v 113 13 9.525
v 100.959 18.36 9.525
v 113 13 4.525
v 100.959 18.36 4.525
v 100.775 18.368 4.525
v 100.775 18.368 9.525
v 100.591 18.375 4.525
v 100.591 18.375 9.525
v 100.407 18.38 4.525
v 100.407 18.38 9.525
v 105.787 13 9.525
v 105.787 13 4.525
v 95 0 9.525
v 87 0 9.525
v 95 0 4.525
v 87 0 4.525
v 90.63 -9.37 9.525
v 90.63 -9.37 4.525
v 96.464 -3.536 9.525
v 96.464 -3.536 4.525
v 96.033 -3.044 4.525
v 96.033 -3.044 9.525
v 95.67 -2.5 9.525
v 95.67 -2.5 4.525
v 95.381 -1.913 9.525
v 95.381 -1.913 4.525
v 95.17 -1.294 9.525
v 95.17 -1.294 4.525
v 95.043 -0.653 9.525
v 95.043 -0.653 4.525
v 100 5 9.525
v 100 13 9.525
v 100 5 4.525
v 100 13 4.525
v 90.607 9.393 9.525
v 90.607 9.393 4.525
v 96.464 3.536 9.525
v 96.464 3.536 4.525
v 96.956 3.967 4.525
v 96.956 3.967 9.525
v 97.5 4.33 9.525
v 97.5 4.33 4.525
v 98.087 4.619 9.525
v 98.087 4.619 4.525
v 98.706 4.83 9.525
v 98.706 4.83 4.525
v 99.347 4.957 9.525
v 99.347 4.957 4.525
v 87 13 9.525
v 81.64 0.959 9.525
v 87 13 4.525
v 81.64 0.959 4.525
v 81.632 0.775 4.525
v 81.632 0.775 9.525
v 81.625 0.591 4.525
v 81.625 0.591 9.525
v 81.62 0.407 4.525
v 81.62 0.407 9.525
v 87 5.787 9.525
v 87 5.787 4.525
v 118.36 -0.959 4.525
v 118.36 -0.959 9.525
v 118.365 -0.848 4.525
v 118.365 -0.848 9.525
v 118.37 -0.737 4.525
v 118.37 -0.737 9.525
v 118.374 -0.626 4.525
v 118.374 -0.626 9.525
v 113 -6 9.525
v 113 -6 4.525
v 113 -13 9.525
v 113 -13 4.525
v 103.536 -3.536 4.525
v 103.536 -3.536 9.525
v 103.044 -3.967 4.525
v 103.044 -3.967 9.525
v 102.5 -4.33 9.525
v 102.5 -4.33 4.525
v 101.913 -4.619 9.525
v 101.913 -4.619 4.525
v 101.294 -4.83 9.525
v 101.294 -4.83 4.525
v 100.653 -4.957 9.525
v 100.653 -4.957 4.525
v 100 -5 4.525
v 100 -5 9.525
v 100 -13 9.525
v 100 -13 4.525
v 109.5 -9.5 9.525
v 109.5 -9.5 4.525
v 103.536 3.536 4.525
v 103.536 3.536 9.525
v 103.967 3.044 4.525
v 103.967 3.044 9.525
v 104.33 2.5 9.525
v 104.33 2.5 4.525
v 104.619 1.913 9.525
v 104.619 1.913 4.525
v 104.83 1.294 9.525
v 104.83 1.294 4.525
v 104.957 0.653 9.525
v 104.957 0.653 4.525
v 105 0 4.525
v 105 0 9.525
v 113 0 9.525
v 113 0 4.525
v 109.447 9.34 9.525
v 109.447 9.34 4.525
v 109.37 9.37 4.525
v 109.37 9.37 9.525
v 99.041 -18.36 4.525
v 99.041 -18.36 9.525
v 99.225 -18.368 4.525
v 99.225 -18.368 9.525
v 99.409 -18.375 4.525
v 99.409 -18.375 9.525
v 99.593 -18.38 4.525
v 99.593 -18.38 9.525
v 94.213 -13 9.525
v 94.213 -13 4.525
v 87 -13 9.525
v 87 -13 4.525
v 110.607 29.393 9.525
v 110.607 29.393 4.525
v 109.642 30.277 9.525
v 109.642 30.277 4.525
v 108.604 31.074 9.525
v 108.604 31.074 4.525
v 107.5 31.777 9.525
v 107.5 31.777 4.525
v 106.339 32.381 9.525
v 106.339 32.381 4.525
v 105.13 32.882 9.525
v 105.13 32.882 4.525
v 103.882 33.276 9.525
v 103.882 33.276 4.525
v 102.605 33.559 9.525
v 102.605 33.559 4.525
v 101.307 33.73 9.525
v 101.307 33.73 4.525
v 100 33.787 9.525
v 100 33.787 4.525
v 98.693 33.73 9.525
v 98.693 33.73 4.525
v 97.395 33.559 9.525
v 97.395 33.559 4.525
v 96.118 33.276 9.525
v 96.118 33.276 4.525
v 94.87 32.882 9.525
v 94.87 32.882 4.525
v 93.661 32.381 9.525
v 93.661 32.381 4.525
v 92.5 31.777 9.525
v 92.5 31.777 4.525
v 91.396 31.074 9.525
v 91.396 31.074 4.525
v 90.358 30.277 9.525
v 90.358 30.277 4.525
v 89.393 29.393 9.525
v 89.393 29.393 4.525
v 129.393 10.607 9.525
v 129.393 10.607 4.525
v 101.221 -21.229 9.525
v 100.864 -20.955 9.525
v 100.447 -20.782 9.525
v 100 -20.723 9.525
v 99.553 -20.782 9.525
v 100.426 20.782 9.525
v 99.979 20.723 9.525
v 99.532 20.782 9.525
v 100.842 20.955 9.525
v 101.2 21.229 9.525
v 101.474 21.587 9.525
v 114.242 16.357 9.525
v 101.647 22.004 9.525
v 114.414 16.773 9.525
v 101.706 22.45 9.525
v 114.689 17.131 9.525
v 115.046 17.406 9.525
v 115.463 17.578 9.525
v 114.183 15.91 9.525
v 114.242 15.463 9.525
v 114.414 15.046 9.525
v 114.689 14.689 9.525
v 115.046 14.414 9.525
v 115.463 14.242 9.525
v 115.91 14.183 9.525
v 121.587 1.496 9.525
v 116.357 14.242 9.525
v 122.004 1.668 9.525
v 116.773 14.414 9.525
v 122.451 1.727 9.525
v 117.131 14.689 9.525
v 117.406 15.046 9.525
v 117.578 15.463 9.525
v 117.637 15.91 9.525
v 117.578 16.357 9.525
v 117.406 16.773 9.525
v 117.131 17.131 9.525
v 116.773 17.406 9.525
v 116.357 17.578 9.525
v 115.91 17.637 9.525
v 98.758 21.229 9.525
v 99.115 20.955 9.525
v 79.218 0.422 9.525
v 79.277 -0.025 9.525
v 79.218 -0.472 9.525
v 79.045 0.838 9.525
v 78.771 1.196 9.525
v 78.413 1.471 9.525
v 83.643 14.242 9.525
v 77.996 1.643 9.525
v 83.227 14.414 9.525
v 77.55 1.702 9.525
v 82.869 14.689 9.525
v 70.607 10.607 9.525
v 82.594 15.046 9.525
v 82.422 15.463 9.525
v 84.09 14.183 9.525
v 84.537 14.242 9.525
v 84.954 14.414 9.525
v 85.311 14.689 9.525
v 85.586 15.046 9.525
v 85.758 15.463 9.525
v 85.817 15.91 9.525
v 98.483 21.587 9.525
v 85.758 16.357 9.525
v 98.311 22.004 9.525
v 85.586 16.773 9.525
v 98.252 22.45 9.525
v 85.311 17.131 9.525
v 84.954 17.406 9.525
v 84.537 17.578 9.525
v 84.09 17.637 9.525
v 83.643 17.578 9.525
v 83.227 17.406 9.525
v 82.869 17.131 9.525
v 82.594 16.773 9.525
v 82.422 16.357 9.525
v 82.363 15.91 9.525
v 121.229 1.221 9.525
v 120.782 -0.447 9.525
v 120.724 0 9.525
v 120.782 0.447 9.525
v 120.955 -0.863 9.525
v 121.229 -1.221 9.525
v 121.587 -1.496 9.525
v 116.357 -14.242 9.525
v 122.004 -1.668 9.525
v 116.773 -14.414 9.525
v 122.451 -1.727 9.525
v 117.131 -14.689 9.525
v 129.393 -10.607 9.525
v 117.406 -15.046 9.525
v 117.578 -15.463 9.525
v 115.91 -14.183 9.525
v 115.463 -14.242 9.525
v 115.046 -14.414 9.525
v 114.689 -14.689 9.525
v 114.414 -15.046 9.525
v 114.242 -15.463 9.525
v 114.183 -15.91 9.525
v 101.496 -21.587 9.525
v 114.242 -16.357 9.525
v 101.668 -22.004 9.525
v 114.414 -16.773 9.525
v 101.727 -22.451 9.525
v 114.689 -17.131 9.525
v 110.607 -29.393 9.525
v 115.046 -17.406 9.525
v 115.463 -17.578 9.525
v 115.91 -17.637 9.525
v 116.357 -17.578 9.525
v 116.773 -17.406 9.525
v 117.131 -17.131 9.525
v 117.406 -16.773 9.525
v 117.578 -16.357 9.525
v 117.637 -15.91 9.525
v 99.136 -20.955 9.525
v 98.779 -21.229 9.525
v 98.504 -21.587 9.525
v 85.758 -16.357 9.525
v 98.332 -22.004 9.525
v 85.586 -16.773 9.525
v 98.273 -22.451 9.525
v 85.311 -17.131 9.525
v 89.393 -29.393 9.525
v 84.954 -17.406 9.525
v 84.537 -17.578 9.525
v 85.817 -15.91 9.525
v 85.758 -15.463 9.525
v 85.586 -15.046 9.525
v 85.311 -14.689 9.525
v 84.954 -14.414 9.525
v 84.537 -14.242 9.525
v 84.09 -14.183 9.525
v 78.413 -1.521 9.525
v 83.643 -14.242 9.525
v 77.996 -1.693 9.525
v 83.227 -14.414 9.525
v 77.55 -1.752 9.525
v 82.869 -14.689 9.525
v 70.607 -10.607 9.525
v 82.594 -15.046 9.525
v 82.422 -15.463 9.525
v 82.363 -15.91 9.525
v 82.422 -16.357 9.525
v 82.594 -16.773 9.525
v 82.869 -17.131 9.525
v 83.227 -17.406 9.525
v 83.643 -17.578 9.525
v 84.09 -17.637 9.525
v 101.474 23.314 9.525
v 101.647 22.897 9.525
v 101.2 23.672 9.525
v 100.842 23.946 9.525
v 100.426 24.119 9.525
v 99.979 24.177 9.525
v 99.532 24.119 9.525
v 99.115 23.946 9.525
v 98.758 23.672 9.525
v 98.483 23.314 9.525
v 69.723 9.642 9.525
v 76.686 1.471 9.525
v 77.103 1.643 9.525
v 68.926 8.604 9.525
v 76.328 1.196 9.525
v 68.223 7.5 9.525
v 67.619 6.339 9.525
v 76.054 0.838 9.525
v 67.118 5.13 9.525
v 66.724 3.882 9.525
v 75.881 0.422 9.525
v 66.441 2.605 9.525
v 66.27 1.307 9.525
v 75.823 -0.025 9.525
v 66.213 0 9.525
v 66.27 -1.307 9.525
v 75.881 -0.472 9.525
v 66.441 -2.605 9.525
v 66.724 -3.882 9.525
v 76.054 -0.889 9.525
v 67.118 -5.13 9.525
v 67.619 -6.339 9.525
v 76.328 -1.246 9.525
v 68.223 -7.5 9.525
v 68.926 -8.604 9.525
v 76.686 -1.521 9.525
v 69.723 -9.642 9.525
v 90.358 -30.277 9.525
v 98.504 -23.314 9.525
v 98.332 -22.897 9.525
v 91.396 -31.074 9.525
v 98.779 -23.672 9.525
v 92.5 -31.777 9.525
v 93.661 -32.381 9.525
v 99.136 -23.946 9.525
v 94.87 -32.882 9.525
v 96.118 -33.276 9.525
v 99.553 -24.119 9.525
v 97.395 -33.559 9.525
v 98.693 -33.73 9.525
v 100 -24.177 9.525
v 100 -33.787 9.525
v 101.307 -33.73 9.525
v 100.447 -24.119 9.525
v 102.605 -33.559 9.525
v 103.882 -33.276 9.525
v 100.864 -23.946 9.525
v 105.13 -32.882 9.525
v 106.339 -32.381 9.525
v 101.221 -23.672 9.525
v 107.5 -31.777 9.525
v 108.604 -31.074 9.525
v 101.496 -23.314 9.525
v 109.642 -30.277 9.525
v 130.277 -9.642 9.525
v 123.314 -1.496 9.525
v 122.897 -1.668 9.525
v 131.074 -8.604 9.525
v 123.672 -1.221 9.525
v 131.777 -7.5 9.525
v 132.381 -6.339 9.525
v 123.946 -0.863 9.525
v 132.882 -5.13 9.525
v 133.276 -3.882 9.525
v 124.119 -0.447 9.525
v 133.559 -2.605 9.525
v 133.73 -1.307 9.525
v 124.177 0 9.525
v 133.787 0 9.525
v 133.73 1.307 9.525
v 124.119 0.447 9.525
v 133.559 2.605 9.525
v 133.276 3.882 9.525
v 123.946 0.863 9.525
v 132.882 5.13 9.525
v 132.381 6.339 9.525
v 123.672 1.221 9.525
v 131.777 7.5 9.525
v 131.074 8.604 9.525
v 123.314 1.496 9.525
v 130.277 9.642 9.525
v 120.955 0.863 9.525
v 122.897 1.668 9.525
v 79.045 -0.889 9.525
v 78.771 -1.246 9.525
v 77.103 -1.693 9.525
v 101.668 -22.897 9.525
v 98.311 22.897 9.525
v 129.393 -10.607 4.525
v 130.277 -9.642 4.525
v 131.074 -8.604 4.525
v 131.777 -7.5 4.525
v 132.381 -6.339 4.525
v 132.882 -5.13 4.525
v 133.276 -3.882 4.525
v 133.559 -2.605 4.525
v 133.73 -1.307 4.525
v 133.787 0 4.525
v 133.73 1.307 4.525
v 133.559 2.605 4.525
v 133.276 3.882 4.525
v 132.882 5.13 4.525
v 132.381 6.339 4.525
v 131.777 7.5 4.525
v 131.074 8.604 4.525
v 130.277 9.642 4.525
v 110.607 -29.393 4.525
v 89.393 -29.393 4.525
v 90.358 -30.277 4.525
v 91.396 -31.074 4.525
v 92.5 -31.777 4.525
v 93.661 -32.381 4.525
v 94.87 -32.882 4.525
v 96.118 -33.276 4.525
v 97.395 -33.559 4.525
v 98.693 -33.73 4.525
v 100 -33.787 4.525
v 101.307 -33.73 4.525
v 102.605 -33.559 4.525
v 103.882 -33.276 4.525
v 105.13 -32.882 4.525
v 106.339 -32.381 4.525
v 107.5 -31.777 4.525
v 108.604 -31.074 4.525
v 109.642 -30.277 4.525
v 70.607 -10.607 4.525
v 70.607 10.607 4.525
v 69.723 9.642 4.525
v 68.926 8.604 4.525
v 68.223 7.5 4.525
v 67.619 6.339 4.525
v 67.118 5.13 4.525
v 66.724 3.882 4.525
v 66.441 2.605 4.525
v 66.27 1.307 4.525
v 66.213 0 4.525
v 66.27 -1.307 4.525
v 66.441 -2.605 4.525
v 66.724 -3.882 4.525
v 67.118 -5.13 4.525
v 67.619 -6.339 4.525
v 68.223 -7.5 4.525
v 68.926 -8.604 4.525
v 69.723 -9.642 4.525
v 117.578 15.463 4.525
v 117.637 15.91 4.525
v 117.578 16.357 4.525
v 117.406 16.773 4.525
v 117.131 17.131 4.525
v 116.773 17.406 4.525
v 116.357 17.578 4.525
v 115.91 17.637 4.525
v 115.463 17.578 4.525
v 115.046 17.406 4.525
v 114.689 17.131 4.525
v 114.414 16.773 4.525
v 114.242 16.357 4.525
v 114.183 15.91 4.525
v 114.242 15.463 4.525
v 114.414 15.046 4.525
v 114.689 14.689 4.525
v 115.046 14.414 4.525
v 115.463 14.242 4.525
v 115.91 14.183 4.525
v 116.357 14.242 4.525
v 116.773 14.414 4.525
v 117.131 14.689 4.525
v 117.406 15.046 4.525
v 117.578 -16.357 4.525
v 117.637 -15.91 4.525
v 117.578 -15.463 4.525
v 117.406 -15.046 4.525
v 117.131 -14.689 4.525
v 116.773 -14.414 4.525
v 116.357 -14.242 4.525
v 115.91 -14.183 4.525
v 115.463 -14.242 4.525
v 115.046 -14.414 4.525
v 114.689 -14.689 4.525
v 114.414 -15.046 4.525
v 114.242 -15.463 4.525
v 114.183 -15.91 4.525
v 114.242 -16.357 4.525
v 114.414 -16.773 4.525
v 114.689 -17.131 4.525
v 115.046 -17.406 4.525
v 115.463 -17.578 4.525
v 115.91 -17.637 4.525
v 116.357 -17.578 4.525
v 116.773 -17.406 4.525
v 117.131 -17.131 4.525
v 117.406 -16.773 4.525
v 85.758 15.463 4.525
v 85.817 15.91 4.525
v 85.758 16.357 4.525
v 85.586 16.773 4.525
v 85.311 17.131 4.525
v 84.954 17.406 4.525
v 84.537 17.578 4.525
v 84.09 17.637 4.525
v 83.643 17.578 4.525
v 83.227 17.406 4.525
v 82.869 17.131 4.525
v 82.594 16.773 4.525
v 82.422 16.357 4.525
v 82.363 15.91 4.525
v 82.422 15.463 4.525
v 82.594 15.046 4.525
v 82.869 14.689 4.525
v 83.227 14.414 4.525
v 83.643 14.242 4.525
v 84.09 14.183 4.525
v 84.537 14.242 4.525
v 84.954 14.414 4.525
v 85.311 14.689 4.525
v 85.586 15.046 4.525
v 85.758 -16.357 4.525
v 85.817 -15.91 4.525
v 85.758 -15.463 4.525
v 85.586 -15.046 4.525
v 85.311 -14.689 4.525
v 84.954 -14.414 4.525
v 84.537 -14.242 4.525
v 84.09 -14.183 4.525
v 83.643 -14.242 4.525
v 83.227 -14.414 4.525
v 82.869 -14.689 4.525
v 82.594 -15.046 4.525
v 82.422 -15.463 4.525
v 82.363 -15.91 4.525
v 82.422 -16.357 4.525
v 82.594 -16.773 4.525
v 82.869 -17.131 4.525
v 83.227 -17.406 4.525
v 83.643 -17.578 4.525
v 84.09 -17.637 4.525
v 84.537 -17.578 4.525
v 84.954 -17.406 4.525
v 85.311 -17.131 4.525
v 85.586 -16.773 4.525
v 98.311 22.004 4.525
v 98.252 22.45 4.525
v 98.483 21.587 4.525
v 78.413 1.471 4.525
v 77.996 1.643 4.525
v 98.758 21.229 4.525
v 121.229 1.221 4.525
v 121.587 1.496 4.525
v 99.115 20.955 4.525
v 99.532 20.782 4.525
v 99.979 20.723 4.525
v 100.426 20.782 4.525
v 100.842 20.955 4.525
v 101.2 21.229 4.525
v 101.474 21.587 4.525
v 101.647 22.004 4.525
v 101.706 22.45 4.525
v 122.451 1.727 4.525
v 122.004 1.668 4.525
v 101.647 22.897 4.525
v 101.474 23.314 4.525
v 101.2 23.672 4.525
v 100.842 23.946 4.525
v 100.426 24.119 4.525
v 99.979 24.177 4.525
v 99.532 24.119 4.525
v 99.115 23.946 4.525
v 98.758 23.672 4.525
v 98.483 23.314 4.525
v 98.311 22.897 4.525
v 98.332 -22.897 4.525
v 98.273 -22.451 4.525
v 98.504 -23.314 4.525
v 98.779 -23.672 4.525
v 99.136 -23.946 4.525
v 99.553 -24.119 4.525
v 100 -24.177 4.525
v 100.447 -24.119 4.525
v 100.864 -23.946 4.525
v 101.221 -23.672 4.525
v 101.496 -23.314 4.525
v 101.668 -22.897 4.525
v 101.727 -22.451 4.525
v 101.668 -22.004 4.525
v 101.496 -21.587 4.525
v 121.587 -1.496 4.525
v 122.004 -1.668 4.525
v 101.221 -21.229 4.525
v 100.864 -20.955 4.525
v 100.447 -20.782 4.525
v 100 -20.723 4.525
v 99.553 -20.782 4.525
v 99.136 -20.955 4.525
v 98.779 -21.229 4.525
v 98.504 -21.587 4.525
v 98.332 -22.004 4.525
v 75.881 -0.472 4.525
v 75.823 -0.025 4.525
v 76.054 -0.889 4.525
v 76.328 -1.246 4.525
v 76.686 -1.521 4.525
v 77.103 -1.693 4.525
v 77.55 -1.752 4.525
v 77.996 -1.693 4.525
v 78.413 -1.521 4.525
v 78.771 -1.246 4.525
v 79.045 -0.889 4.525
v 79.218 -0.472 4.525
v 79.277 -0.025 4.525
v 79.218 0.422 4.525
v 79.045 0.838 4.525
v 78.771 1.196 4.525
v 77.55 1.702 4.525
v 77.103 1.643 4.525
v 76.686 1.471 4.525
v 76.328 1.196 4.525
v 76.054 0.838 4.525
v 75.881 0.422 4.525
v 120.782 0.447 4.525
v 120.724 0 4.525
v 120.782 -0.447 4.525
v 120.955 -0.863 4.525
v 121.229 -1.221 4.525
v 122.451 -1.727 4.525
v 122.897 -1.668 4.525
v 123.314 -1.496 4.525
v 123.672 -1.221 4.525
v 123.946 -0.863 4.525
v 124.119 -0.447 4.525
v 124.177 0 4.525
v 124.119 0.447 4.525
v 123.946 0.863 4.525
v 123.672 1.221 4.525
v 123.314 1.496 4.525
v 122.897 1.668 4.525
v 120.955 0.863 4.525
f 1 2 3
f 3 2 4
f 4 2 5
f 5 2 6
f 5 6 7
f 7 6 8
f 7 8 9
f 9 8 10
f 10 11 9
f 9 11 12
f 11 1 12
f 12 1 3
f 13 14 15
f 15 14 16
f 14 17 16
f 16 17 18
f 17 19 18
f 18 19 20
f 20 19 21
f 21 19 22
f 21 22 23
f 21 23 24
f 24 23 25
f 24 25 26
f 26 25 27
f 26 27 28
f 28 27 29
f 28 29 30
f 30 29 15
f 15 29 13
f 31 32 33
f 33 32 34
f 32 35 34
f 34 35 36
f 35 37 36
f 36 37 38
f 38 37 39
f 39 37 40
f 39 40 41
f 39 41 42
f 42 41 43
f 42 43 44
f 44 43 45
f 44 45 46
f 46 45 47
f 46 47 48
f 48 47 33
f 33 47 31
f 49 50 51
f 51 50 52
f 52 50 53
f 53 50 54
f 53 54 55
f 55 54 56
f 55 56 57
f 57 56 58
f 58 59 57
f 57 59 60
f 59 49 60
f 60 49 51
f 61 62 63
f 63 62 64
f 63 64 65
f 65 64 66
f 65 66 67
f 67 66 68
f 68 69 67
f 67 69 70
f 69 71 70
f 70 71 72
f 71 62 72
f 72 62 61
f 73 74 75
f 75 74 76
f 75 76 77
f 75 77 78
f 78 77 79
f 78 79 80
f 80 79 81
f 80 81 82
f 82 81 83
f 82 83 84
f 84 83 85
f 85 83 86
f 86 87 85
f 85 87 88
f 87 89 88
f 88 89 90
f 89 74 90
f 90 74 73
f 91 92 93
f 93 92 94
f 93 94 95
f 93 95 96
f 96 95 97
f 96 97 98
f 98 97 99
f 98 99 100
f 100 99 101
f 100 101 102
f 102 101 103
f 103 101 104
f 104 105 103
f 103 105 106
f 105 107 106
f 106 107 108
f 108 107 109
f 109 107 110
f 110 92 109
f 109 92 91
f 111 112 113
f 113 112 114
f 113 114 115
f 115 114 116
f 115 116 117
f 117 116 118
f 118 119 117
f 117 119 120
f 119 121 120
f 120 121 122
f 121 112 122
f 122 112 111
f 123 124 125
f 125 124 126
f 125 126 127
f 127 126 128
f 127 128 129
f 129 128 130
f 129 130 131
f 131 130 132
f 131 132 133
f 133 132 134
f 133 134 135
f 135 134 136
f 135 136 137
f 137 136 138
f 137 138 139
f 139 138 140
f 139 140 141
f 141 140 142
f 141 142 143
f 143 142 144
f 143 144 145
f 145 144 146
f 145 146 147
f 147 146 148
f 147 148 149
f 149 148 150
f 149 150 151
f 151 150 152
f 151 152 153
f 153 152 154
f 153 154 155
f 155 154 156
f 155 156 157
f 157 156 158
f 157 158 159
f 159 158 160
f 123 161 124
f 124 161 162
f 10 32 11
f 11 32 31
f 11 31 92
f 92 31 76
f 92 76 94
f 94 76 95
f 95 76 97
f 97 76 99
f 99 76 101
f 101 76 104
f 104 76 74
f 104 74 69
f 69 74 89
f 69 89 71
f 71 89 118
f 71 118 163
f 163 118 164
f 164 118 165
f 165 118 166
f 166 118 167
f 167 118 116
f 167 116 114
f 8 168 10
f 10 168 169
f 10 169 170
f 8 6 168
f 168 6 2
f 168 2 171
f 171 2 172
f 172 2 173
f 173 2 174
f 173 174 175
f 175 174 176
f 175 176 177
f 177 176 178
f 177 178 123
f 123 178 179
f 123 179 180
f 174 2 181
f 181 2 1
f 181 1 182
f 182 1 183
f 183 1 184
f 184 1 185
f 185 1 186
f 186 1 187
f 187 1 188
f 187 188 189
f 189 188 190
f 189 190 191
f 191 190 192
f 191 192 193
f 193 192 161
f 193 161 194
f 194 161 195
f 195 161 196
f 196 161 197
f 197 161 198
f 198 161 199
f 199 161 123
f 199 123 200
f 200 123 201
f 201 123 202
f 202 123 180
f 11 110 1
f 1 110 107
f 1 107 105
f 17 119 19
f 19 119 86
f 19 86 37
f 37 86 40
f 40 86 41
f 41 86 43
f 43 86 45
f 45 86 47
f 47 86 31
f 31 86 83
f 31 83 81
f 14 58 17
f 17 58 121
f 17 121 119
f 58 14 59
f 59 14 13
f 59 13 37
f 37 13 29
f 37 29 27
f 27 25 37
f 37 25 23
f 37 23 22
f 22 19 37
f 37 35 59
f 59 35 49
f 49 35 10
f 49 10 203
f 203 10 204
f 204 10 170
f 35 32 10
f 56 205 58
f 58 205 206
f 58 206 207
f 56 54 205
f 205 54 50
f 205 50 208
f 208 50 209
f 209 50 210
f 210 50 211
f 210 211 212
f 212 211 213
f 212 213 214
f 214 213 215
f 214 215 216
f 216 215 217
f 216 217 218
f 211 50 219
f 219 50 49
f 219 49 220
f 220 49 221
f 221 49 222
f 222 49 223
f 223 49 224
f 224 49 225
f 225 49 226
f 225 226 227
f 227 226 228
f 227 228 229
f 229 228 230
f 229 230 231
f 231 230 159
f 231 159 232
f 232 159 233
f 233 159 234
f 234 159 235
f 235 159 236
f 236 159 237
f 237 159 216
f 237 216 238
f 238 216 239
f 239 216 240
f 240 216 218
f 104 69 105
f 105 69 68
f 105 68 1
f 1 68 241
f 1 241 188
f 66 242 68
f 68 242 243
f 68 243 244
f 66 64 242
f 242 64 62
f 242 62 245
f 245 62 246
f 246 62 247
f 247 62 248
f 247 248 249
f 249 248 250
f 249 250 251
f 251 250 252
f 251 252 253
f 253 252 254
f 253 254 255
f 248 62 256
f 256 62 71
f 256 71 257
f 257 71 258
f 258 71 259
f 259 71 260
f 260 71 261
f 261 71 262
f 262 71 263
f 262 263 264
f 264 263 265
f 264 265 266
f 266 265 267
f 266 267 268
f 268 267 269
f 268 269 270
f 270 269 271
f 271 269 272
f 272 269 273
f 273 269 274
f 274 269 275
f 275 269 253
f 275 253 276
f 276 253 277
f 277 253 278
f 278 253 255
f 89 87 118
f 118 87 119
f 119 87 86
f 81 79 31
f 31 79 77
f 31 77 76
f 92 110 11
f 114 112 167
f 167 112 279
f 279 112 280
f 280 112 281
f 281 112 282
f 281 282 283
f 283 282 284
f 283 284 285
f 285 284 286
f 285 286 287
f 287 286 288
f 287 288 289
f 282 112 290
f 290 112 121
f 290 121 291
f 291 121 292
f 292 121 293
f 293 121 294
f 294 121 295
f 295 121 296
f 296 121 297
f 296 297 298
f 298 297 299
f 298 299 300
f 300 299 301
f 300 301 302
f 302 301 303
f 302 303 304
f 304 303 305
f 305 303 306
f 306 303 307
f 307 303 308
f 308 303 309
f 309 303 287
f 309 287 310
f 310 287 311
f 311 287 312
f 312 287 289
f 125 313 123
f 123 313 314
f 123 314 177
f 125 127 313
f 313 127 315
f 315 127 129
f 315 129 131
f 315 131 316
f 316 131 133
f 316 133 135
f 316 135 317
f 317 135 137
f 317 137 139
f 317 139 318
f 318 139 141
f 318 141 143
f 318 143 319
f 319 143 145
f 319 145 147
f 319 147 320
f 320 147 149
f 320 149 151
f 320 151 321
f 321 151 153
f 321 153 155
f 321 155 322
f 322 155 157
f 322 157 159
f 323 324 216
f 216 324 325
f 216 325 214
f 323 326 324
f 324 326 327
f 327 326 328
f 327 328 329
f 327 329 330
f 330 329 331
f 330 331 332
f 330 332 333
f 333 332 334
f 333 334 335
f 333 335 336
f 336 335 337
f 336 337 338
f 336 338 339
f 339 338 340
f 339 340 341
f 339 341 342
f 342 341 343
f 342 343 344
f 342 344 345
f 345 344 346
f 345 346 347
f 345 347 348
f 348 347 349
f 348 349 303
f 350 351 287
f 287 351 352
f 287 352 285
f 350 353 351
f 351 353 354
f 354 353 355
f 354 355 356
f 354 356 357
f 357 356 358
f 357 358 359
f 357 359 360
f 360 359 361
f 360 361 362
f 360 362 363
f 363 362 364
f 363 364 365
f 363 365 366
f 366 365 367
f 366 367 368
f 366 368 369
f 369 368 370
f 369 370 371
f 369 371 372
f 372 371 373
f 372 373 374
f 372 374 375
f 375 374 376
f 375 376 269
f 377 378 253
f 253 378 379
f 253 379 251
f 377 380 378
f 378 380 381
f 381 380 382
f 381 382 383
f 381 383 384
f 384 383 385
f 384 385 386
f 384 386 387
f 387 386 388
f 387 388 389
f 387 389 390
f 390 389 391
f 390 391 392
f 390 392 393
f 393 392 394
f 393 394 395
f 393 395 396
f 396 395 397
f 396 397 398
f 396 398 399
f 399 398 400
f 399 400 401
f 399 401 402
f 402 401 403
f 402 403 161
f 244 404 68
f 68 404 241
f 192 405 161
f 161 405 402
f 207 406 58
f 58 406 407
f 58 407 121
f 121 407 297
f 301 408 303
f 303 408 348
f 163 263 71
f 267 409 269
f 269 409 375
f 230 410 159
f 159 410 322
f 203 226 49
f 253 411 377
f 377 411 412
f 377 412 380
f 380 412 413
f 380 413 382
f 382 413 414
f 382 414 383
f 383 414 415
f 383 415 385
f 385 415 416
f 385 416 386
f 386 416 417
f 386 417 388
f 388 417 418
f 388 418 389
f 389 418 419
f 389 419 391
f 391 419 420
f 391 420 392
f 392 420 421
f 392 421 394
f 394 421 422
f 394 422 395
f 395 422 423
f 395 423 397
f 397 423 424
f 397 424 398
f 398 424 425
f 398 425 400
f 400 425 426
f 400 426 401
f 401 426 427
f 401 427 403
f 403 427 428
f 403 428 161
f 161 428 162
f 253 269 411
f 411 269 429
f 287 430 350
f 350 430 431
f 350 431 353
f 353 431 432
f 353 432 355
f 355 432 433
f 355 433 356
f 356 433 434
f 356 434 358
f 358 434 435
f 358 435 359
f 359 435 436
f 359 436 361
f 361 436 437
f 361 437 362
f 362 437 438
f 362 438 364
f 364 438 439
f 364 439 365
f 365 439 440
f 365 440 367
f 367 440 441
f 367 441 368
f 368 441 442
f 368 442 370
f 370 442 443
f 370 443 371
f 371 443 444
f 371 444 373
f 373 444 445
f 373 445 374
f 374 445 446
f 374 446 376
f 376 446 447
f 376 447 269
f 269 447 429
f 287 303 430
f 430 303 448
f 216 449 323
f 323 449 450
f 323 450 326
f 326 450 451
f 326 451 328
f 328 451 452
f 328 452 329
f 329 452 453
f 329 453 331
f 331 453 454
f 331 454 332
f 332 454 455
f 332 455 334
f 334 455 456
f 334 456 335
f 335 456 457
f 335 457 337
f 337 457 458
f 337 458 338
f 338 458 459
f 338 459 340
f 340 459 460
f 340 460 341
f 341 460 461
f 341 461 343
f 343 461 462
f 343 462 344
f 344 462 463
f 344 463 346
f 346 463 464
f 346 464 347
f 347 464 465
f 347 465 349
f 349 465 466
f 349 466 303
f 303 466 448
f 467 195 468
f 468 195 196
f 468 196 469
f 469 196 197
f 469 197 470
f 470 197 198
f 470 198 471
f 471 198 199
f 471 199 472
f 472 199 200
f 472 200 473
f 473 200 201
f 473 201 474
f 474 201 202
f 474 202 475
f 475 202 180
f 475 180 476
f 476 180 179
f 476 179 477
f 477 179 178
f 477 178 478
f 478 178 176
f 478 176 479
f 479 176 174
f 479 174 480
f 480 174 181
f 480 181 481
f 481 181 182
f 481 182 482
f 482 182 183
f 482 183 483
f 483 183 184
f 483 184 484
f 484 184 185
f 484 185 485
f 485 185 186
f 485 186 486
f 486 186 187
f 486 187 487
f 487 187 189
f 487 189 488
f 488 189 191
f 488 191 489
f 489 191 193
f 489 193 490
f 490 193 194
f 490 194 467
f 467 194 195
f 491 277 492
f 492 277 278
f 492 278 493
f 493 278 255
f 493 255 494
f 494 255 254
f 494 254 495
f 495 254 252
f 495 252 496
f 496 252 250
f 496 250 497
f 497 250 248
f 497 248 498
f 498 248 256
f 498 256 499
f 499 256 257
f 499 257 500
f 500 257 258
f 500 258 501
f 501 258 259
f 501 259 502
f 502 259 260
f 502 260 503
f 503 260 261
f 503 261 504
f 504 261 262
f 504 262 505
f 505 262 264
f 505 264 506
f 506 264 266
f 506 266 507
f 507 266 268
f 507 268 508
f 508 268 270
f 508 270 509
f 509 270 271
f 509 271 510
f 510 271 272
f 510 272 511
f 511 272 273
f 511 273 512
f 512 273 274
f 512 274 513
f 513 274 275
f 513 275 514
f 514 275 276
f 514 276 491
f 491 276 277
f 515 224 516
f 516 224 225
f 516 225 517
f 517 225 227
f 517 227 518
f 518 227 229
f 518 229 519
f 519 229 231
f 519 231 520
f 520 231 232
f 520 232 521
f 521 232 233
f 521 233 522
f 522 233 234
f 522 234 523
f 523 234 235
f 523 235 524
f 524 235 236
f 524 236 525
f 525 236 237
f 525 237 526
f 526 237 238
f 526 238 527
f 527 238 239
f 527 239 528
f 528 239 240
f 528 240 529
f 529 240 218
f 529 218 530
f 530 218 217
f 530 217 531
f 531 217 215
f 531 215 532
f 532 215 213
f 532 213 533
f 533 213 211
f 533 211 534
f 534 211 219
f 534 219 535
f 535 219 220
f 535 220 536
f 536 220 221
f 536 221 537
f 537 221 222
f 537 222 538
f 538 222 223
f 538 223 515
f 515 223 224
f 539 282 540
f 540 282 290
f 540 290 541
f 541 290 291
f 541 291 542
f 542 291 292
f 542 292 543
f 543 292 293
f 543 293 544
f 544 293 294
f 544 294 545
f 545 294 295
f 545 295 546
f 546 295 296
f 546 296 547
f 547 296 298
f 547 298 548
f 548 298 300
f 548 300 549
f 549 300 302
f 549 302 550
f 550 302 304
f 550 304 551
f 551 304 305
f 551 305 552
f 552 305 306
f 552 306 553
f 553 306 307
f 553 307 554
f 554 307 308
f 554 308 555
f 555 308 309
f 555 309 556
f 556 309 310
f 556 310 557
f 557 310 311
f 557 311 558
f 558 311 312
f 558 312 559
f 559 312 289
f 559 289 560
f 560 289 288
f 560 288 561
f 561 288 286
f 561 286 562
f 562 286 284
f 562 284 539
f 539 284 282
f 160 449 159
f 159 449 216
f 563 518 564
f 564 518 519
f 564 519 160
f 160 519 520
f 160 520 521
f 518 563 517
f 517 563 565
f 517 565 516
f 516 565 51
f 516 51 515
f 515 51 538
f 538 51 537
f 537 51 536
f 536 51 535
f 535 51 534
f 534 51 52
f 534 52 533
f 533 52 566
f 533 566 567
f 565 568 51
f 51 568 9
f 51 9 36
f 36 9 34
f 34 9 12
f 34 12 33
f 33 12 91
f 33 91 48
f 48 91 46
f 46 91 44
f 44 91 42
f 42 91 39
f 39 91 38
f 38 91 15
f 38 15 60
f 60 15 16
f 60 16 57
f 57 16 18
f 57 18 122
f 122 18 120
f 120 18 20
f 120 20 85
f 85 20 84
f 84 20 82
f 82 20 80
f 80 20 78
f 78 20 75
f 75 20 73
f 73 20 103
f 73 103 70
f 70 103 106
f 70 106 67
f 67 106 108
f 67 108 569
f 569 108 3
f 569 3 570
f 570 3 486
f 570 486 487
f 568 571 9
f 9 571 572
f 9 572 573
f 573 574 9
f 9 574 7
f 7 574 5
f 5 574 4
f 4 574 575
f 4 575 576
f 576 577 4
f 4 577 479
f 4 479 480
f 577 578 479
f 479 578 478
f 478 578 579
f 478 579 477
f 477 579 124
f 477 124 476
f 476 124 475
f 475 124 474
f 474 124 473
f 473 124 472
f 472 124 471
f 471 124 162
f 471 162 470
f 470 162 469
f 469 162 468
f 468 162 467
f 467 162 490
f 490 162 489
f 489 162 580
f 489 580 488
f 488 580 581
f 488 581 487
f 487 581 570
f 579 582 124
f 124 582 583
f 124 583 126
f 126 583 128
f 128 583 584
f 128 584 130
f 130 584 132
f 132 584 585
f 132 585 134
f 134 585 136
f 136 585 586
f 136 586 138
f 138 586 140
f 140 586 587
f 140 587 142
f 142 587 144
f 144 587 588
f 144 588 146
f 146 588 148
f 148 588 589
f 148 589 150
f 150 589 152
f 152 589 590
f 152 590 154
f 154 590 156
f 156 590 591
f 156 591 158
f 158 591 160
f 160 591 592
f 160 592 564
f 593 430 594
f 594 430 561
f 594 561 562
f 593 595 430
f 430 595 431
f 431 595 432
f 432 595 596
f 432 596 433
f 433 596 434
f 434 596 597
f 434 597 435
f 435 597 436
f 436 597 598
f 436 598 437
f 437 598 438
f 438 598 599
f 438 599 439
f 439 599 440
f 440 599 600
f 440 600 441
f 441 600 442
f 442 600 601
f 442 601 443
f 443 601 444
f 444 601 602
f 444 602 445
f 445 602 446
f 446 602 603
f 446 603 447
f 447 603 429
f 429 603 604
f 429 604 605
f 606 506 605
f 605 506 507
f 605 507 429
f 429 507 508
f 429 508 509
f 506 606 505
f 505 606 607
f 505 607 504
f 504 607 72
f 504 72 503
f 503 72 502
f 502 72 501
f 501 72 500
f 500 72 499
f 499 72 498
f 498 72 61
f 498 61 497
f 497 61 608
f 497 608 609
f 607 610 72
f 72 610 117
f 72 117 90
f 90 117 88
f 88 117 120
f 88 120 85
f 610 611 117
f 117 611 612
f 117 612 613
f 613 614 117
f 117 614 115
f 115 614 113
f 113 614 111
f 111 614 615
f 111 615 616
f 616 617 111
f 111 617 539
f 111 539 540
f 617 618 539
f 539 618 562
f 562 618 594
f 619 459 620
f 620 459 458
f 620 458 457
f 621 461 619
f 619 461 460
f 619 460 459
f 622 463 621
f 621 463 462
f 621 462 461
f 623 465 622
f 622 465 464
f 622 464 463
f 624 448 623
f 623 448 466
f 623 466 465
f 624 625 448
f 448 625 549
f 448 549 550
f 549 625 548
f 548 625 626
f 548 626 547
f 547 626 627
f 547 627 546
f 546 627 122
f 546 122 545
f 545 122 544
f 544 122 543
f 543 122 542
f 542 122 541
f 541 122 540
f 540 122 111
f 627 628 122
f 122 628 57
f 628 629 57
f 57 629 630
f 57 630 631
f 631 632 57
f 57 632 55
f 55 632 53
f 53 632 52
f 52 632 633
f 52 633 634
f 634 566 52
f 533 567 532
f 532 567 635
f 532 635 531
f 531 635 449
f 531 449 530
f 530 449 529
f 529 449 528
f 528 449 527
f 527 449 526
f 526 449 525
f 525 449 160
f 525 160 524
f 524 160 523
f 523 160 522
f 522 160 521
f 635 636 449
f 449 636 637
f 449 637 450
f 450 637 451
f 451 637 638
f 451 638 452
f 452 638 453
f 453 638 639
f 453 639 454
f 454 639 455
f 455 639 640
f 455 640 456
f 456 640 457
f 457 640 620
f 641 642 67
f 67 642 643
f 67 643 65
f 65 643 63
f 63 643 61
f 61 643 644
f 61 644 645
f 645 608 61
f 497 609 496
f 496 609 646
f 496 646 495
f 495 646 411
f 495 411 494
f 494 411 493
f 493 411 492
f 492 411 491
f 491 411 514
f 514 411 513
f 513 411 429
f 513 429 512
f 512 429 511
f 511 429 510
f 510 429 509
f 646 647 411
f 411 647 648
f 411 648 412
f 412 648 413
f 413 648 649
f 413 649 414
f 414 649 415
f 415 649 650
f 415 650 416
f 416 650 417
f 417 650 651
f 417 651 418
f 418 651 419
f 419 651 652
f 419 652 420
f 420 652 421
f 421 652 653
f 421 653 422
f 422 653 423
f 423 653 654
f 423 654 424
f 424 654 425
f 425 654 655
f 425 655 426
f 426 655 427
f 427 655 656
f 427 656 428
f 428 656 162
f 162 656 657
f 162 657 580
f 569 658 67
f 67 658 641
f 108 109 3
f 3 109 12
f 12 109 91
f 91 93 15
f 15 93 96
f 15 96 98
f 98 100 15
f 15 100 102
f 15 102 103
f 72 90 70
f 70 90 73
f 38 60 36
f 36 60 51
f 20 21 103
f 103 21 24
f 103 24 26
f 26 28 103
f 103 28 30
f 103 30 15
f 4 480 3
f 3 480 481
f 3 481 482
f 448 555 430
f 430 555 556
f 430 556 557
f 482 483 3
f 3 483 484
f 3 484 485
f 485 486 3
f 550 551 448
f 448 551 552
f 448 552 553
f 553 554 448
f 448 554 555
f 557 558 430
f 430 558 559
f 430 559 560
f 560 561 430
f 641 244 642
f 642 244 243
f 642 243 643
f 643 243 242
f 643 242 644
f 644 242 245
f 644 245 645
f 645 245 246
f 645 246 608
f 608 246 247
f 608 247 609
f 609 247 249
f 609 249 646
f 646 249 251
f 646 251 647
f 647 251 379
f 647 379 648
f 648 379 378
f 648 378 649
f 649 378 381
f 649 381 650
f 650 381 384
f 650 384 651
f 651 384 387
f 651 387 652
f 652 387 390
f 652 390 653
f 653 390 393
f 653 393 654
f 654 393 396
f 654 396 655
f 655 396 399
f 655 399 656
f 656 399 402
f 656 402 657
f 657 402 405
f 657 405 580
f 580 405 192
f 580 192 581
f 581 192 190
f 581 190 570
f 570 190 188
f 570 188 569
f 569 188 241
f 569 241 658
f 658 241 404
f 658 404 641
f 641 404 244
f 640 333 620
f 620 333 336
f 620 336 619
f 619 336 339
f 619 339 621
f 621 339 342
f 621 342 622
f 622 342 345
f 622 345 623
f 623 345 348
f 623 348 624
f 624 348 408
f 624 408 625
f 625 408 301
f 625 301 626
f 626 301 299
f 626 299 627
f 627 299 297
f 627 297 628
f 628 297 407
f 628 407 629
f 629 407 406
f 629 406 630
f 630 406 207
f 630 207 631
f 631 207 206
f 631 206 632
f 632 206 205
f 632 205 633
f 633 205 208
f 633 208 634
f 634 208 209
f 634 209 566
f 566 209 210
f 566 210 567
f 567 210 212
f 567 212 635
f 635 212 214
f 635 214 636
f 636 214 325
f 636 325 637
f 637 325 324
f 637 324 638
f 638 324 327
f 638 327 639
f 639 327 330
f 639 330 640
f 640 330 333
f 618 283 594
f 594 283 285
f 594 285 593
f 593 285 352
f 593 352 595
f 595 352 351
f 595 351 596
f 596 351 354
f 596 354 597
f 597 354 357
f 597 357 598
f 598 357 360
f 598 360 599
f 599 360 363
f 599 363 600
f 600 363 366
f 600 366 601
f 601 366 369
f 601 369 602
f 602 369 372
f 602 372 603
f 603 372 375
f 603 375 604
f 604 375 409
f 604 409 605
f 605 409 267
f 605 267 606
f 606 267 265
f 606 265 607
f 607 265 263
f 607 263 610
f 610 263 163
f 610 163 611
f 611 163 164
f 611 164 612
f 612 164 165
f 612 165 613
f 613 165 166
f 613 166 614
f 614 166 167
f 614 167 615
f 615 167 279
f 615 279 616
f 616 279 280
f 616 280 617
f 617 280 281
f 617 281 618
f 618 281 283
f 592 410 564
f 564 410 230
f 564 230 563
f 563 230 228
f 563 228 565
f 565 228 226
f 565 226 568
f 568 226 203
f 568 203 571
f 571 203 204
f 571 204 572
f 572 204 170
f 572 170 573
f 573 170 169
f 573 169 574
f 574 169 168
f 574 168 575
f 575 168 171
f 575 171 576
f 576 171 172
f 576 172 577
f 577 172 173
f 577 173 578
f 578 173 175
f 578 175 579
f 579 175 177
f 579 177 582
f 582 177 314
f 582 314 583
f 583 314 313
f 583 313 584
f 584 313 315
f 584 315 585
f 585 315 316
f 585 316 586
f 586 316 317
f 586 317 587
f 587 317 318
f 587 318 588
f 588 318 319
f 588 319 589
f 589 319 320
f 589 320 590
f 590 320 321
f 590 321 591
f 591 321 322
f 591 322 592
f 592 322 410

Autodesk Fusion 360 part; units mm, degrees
sketch "Sketch1" plane through (0, 0, 0) normal (0, 0, 1) x (1, 0, 0)
  line L0 (101.6, 0) -> (101.6, 19.05)
  line L1 (101.6, 19.05) -> (-5.6875, 19.05)
  line L2 (101.6, 0) -> (101.6, -19.05)
  line L3 (101.6, -19.05) -> (-5.6875, -19.05)
  arc A0 (-6.5, 18.9143) -> (-6.5, -18.9143) centre (0, 0) ccw
  arc A1 (-5.6875, 19.05) -> (-6.5, 18.9143) centre (-5.6875, 16.55) ccw
  arc A2 (-6.5, -18.9143) -> (-5.6875, -19.05) centre (-5.6875, -16.55) ccw
  line L4 (0, 0) -> (45, 0) construction
  circle A3 centre (-11.5524, 11.5524) radius 1.5625
  circle A4 centre (11.5524, 11.5524) radius 1.5625
  circle A5 centre (-11.5524, -11.5524) radius 1.5625
  circle A6 centre (11.5524, -11.5524) radius 1.5625
  point P0 (11.5524, -11.5524)
  point P1 (-11.5524, -11.5524)
  point P2 (-11.5524, 11.5524)
  point P3 (11.5524, 11.5524)
  dimension "d1" = 40
  dimension "d2" = 101.6
  dimension "d3" = 19.05
  dimension "d4" = 19.05
  dimension "d5" = 2.5
  dimension "d9" = 3.125
  dimension "d10" = 3.125
  dimension "d11" = 3.125
  dimension "d12" = 3.125
extrude "Extrude1" add sketch "Sketch1" along normal blind 9.525 makes body 1
ref_plane "WorkPlane1" through (47.9563, 0, 4.7625) normal (0, -1, 0) x (1, 0, 0)
pattern_circular "C-Pattern1" count 4 over 360 about axis through (101.6, 0, -2.5717) along (0, 0, 1) of bodies 1 makes body 2 at (101.6, -59.0437, 0) makes body 3 at (160.6437, 0, 0) makes body 4 at (101.6, 59.0437, 0)
combine "Combine1" operation add target body 4 tool bodies 1 2 3
sketch "Sketch2" plane through (0, 0, 9.525) normal (0, 0, 1) x (-1, 0, 0)
  circle A0 centre (-214.7524, -11.5524) radius 1.5625
  circle A1 centre (-191.6476, -11.5524) radius 1.5625
  circle A2 centre (-214.7524, 11.5524) radius 1.5625
  circle A3 centre (-191.6476, 11.5524) radius 1.5625
  line L0 (-120.65, -19.05) -> (-120.65, -107.2875)
  arc A4 (-120.65, -107.2875) -> (-120.5143, -108.1) centre (-118.15, -107.2875) ccw
  arc A5 (-120.5143, -108.1) -> (-82.6857, -108.1) centre (-101.6, -101.6) ccw
  arc A6 (-82.6857, -108.1) -> (-82.55, -107.2875) centre (-85.05, -107.2875) ccw
  line L1 (-82.55, -107.2875) -> (-82.55, -19.05)
  line L2 (-82.55, -19.05) -> (5.6875, -19.05)
  arc A7 (5.6875, -19.05) -> (6.5, -18.9143) centre (5.6875, -16.55) ccw
  arc A8 (6.5, -18.9143) -> (6.5, 18.9143) centre (0, 0) ccw
  arc A9 (6.5, 18.9143) -> (5.6875, 19.05) centre (5.6875, 16.55) ccw
  line L3 (5.6875, 19.05) -> (-82.55, 19.05)
  line L4 (-82.55, 19.05) -> (-82.55, 107.2875)
  arc A10 (-82.55, 107.2875) -> (-82.6857, 108.1) centre (-85.05, 107.2875) ccw
  arc A11 (-82.6857, 108.1) -> (-120.5143, 108.1) centre (-101.6, 101.6) ccw
  arc A12 (-120.5143, 108.1) -> (-120.65, 107.2875) centre (-118.15, 107.2875) ccw
  line L5 (-120.65, 107.2875) -> (-120.65, 19.05)
  line L6 (-120.65, 19.05) -> (-208.8875, 19.05)
  arc A13 (-208.8875, 19.05) -> (-209.7, 18.9143) centre (-208.8875, 16.55) ccw
  arc A14 (-209.7, 18.9143) -> (-209.7, -18.9143) centre (-203.2, 0) ccw
  arc A15 (-209.7, -18.9143) -> (-208.8875, -19.05) centre (-208.8875, -16.55) ccw
  line L7 (-208.8875, -19.05) -> (-120.65, -19.05)
  circle A16 centre (-90.0476, 90.0476) radius 1.5625
  circle A17 centre (-90.0476, 113.1524) radius 1.5625
  circle A18 centre (-113.1524, 90.0476) radius 1.5625
  circle A19 centre (-113.1524, 113.1524) radius 1.5625
  circle A20 centre (-90.0476, -113.1524) radius 1.5625
  circle A21 centre (-90.0476, -90.0476) radius 1.5625
  circle A22 centre (-113.1524, -113.1524) radius 1.5625
  circle A23 centre (-113.1524, -90.0476) radius 1.5625
  circle A24 centre (11.5524, 11.5524) radius 1.5625
  circle A25 centre (-11.5524, 11.5524) radius 1.5625
  circle A26 centre (11.5524, -11.5524) radius 1.5625
  circle A27 centre (-11.5524, -11.5524) radius 1.5625
  line L8 (-52.9071, -19.05) -> (-82.55, -47.7089)
  line L9 (-120.65, -46.4135) -> (-147.0929, -19.05)
  line L10 (-147.0929, 19.05) -> (-120.65, 46.4135)
  line L11 (-82.55, 47.7089) -> (-52.9071, 19.05)
extrude "Extrude2" add sketch "Sketch2" against normal up to surface (9.525 mm away) contours L0 L7 L9 | L1 L2 L8 | L5 L6 L10 | L3 L4 L11 bodies 4
sketch "Sketch3" plane through (0, 0, 0) normal (0, 0, -1) x (1, 0, 0)
  circle A0 centre (191.6476, 11.5524) radius 1.5625
  circle A1 centre (214.7524, 11.5524) radius 1.5625
  circle A2 centre (191.6476, -11.5524) radius 1.5625
  circle A3 centre (214.7524, -11.5524) radius 1.5625
  circle A4 centre (113.1524, -90.0476) radius 1.5625
  circle A5 centre (113.1524, -113.1524) radius 1.5625
  circle A6 centre (90.0476, -90.0476) radius 1.5625
  circle A7 centre (90.0476, -113.1524) radius 1.5625
  circle A8 centre (11.5524, -11.5524) radius 1.5625
  circle A9 centre (-11.5524, -11.5524) radius 1.5625
  circle A10 centre (11.5524, 11.5524) radius 1.5625
  circle A11 centre (-11.5524, 11.5524) radius 1.5625
  line L0 (120.65, 46.4135) -> (120.65, 107.2875)
  arc A12 (120.65, 107.2875) -> (120.5143, 108.1) centre (118.15, 107.2875) ccw
  arc A13 (120.5143, 108.1) -> (82.6857, 108.1) centre (101.6, 101.6) ccw
  arc A14 (82.6857, 108.1) -> (82.55, 107.2875) centre (85.05, 107.2875) ccw
  line L1 (82.55, 107.2875) -> (82.55, 47.7089)
  line L2 (82.55, 47.7089) -> (52.9071, 19.05)
  line L3 (52.9071, 19.05) -> (-5.6875, 19.05)
  arc A15 (-5.6875, 19.05) -> (-6.5, 18.9143) centre (-5.6875, 16.55) ccw
  arc A16 (-6.5, 18.9143) -> (-6.5, -18.9143) centre (0, 0) ccw
  arc A17 (-6.5, -18.9143) -> (-5.6875, -19.05) centre (-5.6875, -16.55) ccw
  line L4 (-5.6875, -19.05) -> (52.9071, -19.05)
  line L5 (52.9071, -19.05) -> (82.55, -47.7089)
  line L6 (82.55, -47.7089) -> (82.55, -107.2875)
  arc A18 (82.55, -107.2875) -> (82.6857, -108.1) centre (85.05, -107.2875) ccw
  arc A19 (82.6857, -108.1) -> (120.5143, -108.1) centre (101.6, -101.6) ccw
  arc A20 (120.5143, -108.1) -> (120.65, -107.2875) centre (118.15, -107.2875) ccw
  line L7 (120.65, -107.2875) -> (120.65, -46.4135)
  line L8 (120.65, -46.4135) -> (147.0929, -19.05)
  line L9 (147.0929, -19.05) -> (208.8875, -19.05)
  arc A21 (208.8875, -19.05) -> (209.7, -18.9143) centre (208.8875, -16.55) ccw
  arc A22 (209.7, -18.9143) -> (209.7, 18.9143) centre (203.2, 0) ccw
  arc A23 (209.7, 18.9143) -> (208.8875, 19.05) centre (208.8875, 16.55) ccw
  line L10 (208.8875, 19.05) -> (147.0929, 19.05)
  line L11 (147.0929, 19.05) -> (120.65, 46.4135)
  circle A24 centre (90.0476, 90.0476) radius 1.5625
  circle A25 centre (90.0476, 113.1524) radius 1.5625
  circle A26 centre (113.1524, 90.0476) radius 1.5625
  circle A27 centre (113.1524, 113.1524) radius 1.5625
  circle A28 centre (77.5495, 0.0251) radius 1.727
  circle A29 centre (100, 22.4505) radius 1.727
  circle A30 centre (122.4505, 0) radius 1.727
  circle A31 centre (99.9787, -22.4505) radius 1.727
  circle A32 centre (73.0825, 26.964) radius 1.727
  circle A33 centre (126.964, 26.9175) radius 1.727
  circle A34 centre (126.9175, -26.964) radius 1.727
  circle A35 centre (73.036, -26.9175) radius 1.727
  dimension "d21" = 3.454
  dimension "d22" = 3.454
  dimension "d23" = 3.454
  dimension "d24" = 3.454
  dimension "d26" = 3.454
  dimension "d27" = 3.454
  dimension "d28" = 3.454
  dimension "d29" = 3.454
extrude "Extrude3" cut sketch "Sketch3" against normal blind 10 contours A28 | A29 | A30 | A31 | A32 | A33 | A34 | A35 bodies 4
sketch "Sketch4" plane through (0, 0, 9.525) normal (0, 0, 1) x (-1, 0, 0)
  circle A0 centre (-122.4505, 0) radius 1.727
  circle A1 centre (-77.5495, 0.0251) radius 1.727
  circle A2 centre (-73.036, -26.9175) radius 1.727
  circle A3 centre (-100, 22.4505) radius 1.727
  circle A4 centre (-126.9175, -26.964) radius 1.727
  circle A5 centre (-73.0825, 26.964) radius 1.727
  circle A6 centre (-99.9787, -22.4505) radius 1.727
  circle A7 centre (-126.964, 26.9175) radius 1.727
  circle A8 centre (-214.7524, -11.5524) radius 1.5625
  circle A9 centre (-191.6476, -11.5524) radius 1.5625
  circle A10 centre (-214.7524, 11.5524) radius 1.5625
  circle A11 centre (-191.6476, 11.5524) radius 1.5625
  line L0 (-120.65, -46.4135) -> (-120.65, -107.2875)
  arc A12 (-120.65, -107.2875) -> (-120.5143, -108.1) centre (-118.15, -107.2875) ccw
  arc A13 (-120.5143, -108.1) -> (-82.6857, -108.1) centre (-101.6, -101.6) ccw
  arc A14 (-82.6857, -108.1) -> (-82.55, -107.2875) centre (-85.05, -107.2875) ccw
  line L1 (-82.55, -107.2875) -> (-82.55, -47.7089)
  line L2 (-82.55, -47.7089) -> (-52.9071, -19.05)
  line L3 (-52.9071, -19.05) -> (5.6875, -19.05)
  arc A15 (5.6875, -19.05) -> (6.5, -18.9143) centre (5.6875, -16.55) ccw
  arc A16 (6.5, -18.9143) -> (6.5, 18.9143) centre (0, 0) ccw
  arc A17 (6.5, 18.9143) -> (5.6875, 19.05) centre (5.6875, 16.55) ccw
  line L4 (5.6875, 19.05) -> (-52.9071, 19.05)
  line L5 (-52.9071, 19.05) -> (-82.55, 47.7089)
  line L6 (-82.55, 47.7089) -> (-82.55, 107.2875)
  arc A18 (-82.55, 107.2875) -> (-82.6857, 108.1) centre (-85.05, 107.2875) ccw
  arc A19 (-82.6857, 108.1) -> (-120.5143, 108.1) centre (-101.6, 101.6) ccw
  arc A20 (-120.5143, 108.1) -> (-120.65, 107.2875) centre (-118.15, 107.2875) ccw
  line L7 (-120.65, 107.2875) -> (-120.65, 46.4135)
  line L8 (-120.65, 46.4135) -> (-147.0929, 19.05)
  line L9 (-147.0929, 19.05) -> (-208.8875, 19.05)
  arc A21 (-208.8875, 19.05) -> (-209.7, 18.9143) centre (-208.8875, 16.55) ccw
  arc A22 (-209.7, 18.9143) -> (-209.7, -18.9143) centre (-203.2, 0) ccw
  arc A23 (-209.7, -18.9143) -> (-208.8875, -19.05) centre (-208.8875, -16.55) ccw
  line L10 (-208.8875, -19.05) -> (-147.0929, -19.05)
  line L11 (-147.0929, -19.05) -> (-120.65, -46.4135)
  circle A24 centre (-90.0476, 90.0476) radius 1.5625
  circle A25 centre (-90.0476, 113.1524) radius 1.5625
  circle A26 centre (-113.1524, 90.0476) radius 1.5625
  circle A27 centre (-113.1524, 113.1524) radius 1.5625
  circle A28 centre (-90.0476, -113.1524) radius 1.5625
  circle A29 centre (-90.0476, -90.0476) radius 1.5625
  circle A30 centre (-113.1524, -113.1524) radius 1.5625
  circle A31 centre (-113.1524, -90.0476) radius 1.5625
  circle A32 centre (11.5524, 11.5524) radius 1.5625
  circle A33 centre (-11.5524, 11.5524) radius 1.5625
  circle A34 centre (11.5524, -11.5524) radius 1.5625
  circle A35 centre (-11.5524, -11.5524) radius 1.5625
  line L12 (-72.5, 27.5) -> (-127.5, -27.5) construction
  line L13 (-127.5, 27.5) -> (-72.5, -27.5) construction
  line L14 (-72.5, 0) -> (-100, 27.5)
  line L15 (-100, 27.5) -> (-127.5, 0)
  line L16 (-127.5, 0) -> (-100, -27.5)
  line L17 (-72.5, 0) -> (-100, -27.5)
  line L18 (-127.5, -27.5) -> (-125.2758, -27.5)
  line L19 (-74.6618, -27.5) -> (-72.5, -27.5)
  line L20 (-72.5, -27.5) -> (-72.5, -25.2758)
  line L21 (-72.5, 25.3382) -> (-72.5, 27.5)
  line L22 (-127.5, 27.5) -> (-127.5, 25.2758)
  line L23 (-127.5, -25.3382) -> (-127.5, -27.5)
  line L24 (-72.5, 27.5) -> (-74.7242, 27.5)
  line L25 (-125.3382, 27.5) -> (-127.5, 27.5)
  circle A36 centre (-100, 0) radius 141.4214
  point P0 (-100, 0)
  dimension "d32" = 55
  dimension "d33" = 55
extrude "Extrude4" cut sketch "Sketch4" against normal blind 80 contours L0 A12 A13 A14 L1 L2 L3 A15 A16 A17 L4 L5 L6 A18 A19 A20 L7 L8 L9 A21 A22 A23 L10 L11 bodies 4
sketch "Sketch5" plane through (63.75, -63.75, 0) normal (0.7071, -0.7071, 0) x (0.7071, 0.7071, 0)
  line L0 (51.2652, 0) -> (90.1561, 0)
  line L1 (90.1561, 0) -> (90.1561, 9.525)
  line L2 (90.1561, 9.525) -> (51.2652, 9.525)
  line L3 (51.2652, 9.525) -> (51.2652, 0)
  line L4 (51.2652, 4.7625) -> (90.1561, 4.7625)
extrude "Extrude5" cut sketch "Sketch5" against normal blind 135 contours L0 L1 L3 L4 bodies 4
fillet "Fillet1" radius 2.5 4 edges at (100, -27.5, 7.1438) (127.5, 0, 7.1438) (100, 27.5, 7.1438) (72.5, 0, 7.1438) on bodies 4
sketch "Sketch6" plane through (0, 0, 9.525) normal (0, 0, 1) x (-1, 0, 0)
  arc A0 (-74.2678, -1.7678) -> (-74.2678, 1.7678) centre (-76.0355, 0) ccw
  line L0 (-74.2678, 1.7678) -> (-98.2322, 25.7322)
  arc A1 (-98.2322, 25.7322) -> (-101.7678, 25.7322) centre (-100, 23.9645) ccw
  line L1 (-101.7678, 25.7322) -> (-125.7322, 1.7678)
  arc A2 (-125.7322, 1.7678) -> (-125.7322, -1.7678) centre (-123.9645, 0) ccw
  line L2 (-125.7322, -1.7678) -> (-101.7678, -25.7322)
  arc A3 (-101.7678, -25.7322) -> (-98.2322, -25.7322) centre (-100, -23.9645) ccw
  line L3 (-98.2322, -25.7322) -> (-74.2678, -1.7678)
  circle A4 centre (-122.4505, 0) radius 1.727
  circle A5 centre (-77.5495, 0.0251) radius 1.727
  circle A6 centre (-100, 22.4505) radius 1.727
  circle A7 centre (-99.9787, -22.4505) radius 1.727
  line L4 (-100, -40) -> (-140, 0)
  line L5 (-140, 0) -> (-100, 40)
  line L6 (-100, 40) -> (-60, 0)
  line L7 (-60, 0) -> (-100, -40)
extrude "Extrude6" add sketch "Sketch6" against normal blind 5 contours L4 L5 L6 L7 bodies 4
sketch "Sketch7" plane through (0, 0, 9.525) normal (0, 0, 1) x (-1, 0, 0)
  line L0 (-60, 0) -> (-100, 40)
  line L1 (-100, 40) -> (-140, 0)
  line L2 (-140, 0) -> (-100, -40)
  line L3 (-100, -40) -> (-60, 0)
  circle A0 centre (-122.4505, 0) radius 1.727
  circle A1 centre (-77.5495, 0.0251) radius 1.727
  circle A2 centre (-100, 22.4505) radius 1.727
  circle A3 centre (-99.9787, -22.4505) radius 1.727
  circle A4 centre (-100, 0) radius 22.5
  line L4 (-100, 0) -> (-120, 20)
  line L5 (-100, 0) -> (-80, -20)
  line L6 (-100, 0) -> (-120, -20)
  line L7 (-100, 0) -> (-80, 20)
  circle A5 centre (-84.0901, -15.9099) radius 1.727
  circle A6 centre (-115.9099, -15.9099) radius 1.727
  circle A7 centre (-115.9099, 15.9099) radius 1.727
  circle A8 centre (-84.0901, 15.9099) radius 1.727
  dimension "d42" = 45
  dimension "d43" = 3.454
  dimension "d44" = 3.454
  dimension "d45" = 3.454
  dimension "d46" = 3.454
extrude "Extrude7" cut sketch "Sketch7" against normal blind 6 contours A4 L7 A8 | A4 L7 A8 | A4 L5 A5 | A4 L5 A5 | A4 L7 A8 | A4 L7 A8 | A4 L5 A5 | A4 L5 A5 | A4 L4 A7 | A4 L4 A7 | A4 L6 A6 | A4 L6 A6 | A4 L4 A7 | A4 L4 A7 | A4 L6 A6 | A4 L6 A6 bodies 4
fillet "Fillet2" radius 15 4 edges at (60, 0, 7.025) (100, -40, 7.025) (140, 0, 7.025) (100, 40, 7.025) on bodies 4
sketch "Sketch8" plane through (0, 0, 9.525) normal (0, 0, 1) x (-1, 0, 0)
  circle A0 centre (-115.9099, -15.9099) radius 1.727
  circle A1 centre (-115.9099, 15.9099) radius 1.727
  circle A2 centre (-84.0901, -15.9099) radius 1.727
  circle A3 centre (-84.0901, 15.9099) radius 1.727
  arc A4 (-110.6066, -29.3934) -> (-89.3934, -29.3934) centre (-100, -18.7868) ccw
  line L0 (-89.3934, -29.3934) -> (-70.6066, -10.6066)
  arc A5 (-70.6066, -10.6066) -> (-70.6066, 10.6066) centre (-81.2132, 0) ccw
  line L1 (-70.6066, 10.6066) -> (-89.3934, 29.3934)
  arc A6 (-89.3934, 29.3934) -> (-110.6066, 29.3934) centre (-100, 18.7868) ccw
  line L2 (-110.6066, 29.3934) -> (-129.3934, 10.6066)
  arc A7 (-129.3934, 10.6066) -> (-129.3934, -10.6066) centre (-118.7868, 0) ccw
  line L3 (-129.3934, -10.6066) -> (-110.6066, -29.3934)
  circle A8 centre (-122.4505, 0) radius 1.727
  circle A9 centre (-77.5495, 0.0251) radius 1.727
  circle A10 centre (-100, 22.4505) radius 1.727
  circle A11 centre (-99.9787, -22.4505) radius 1.727
  circle A12 centre (-100, 0) radius 18.3848
  line L4 (-87, -13) -> (-113, -13)
  line L5 (-113, -13) -> (-113, 13)
  line L6 (-113, 13) -> (-87, 13)
  line L7 (-87, 13) -> (-87, -13)
  line L8 (-87, -13) -> (-88, -12)
  line L9 (-88, -12) -> (-113, 13)
  line L10 (-87, 13) -> (-113, -13)
  line L11 (-81.6152, 0) -> (-118.7868, 0)
  line L12 (-100, -18.7868) -> (-100, 18.7868)
  line L13 (-87, -13) -> (-100, -18.7868)
  line L14 (-100, -18.7868) -> (-113, -13)
  line L15 (-81.2132, 0) -> (-87, -13)
  line L16 (-81.2132, 0) -> (-87, 13)
  line L17 (-100, 18.7868) -> (-87, 13)
  line L18 (-100, 18.7868) -> (-113, 13)
  line L19 (-118.7868, 0) -> (-113, 13)
  line L20 (-118.7868, 0) -> (-113, -13)
  line L21 (-81.2132, 0) -> (-100, -18.7868)
  line L22 (-100, -18.7868) -> (-118.8934, 0.1066)
  line L23 (-118.8934, 0.1066) -> (-100.1066, 18.8934)
  line L24 (-100.1066, 18.8934) -> (-81.2132, 0)
  line L25 (-87, 0) -> (-90.6066, -9.3934)
  line L26 (-100, -13) -> (-90.6066, -9.3934)
  line L27 (-100, -13) -> (-109.4467, -9.3401)
  line L28 (-109.4467, -9.3401) -> (-113, 0)
  line L29 (-113, 0) -> (-109.5, 9.5)
  line L30 (-109.5, 9.5) -> (-100, 13)
  line L31 (-100, 13) -> (-90.6599, 9.4467)
  line L32 (-87, 0) -> (-90.6599, 9.4467)
  circle A13 centre (-100, 0) radius 5
extrude "Extrude8" cut sketch "Sketch8" against normal blind 24 contours A12 L7 L15 L21 | L10 L11 L32 A13 | L9 L12 L26 A13 | A12 L6 L17 L24 | L9 L12 L30 A13 | L10 L11 L27 L28 A13 | A12 L4 L14 L22 | A12 L5 L19 L23 bodies 4
extrude "Extrude9" add 1 faces at (115.7282, 4.7249, 4.7625) along direction (0, 0, -1) up to surface (0.2375 mm away) on bodies 4 bodies 4
